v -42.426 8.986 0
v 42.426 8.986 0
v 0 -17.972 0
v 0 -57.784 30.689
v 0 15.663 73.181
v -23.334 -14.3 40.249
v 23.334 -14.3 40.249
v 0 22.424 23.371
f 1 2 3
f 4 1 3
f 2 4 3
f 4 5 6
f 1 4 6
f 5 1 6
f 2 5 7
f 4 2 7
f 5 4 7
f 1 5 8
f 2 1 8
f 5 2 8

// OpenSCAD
// OpenSCAD model of the 11/20 stellated tetrahedron, a "Nopert":
// a convex polyhedron that does NOT have the Rupert property, i.e. it does
// not fit through a hole in a copy of itself.
//
// The polyhedron was suggested by Tony Zeng as a candidate for the simplest
// possible Nopert in
//   Tony Zeng, "A stellated tetrahedron that is probably not Rupert",
//   arXiv:2604.26531 (April 2026).
//
// That it is indeed not Rupert was then formally proved in Lean 4 / Mathlib
// by David Renshaw (dwrensha):
//   https://github.com/dwrensha/StellatedTetrahedron
// The main formal assertion there is `¬ IsRupert exactVerts`, with the
// vertices defined in Noperts/Stellated/Vertices.lean (scaled by 1/2 so that
// they lie in the unit ball). That project grew out of the Noperthedron
// formalization https://github.com/jcreedcmu/Noperthedron, see also the
// Noperthedron model in ../noperthedron.
//
// Vertices (unscaled, as in Zeng's paper):
//   p_i = (1,1,1), (1,-1,-1), (-1,1,-1), (-1,-1,1)   (a regular tetrahedron)
//   q_i = -a * p_i                                   with a = 11/20
// Each q_i sits above the face of the tetrahedron opposite p_i, so the convex
// hull is the tetrahedron with a low pyramid erected on each face:
// 8 vertices, 18 edges, 12 triangular faces.
//
// For comparison: with a = 3/5 one gets the triakis tetrahedron, which has
// long been known to be Rupert (it fits through itself).

//=====================================================================
//          PARAMETERS
//=====================================================================
// Stellation parameter a. 11/20 is the Nopert; 3/5 gives the (Rupert)
// triakis tetrahedron.
a = 11/20;

// Scale factor in mm per unit. The tetrahedron edge is 2*sqrt(2) units, so
// scale_factor = 30 gives an edge of about 85 mm and a circumradius
// (distance from center to a p_i) of about 52 mm.
scale_factor = 30;

// Lay the solid on one of its faces for printing (all 12 faces are equivalent
// by symmetry). The rotation is built from the exact face normal and an edge
// direction, not from rounded angles, so the three base vertices end up on
// z = 0 to floating-point precision. Set to false for the paper's coordinates.
lay_flat = true;

//=====================================================================
//          MODEL DEFINITION
//=====================================================================
p = [[1, 1, 1], [1, -1, -1], [-1, 1, -1], [-1, -1, 1]];
q = [for (v = p) -a * v];

verts = concat(p, q) * scale_factor;   // indices 0..3 = p_i, 4..7 = q_i

// For every i, the face of the tetrahedron opposite p_i is spanned by the
// other three p_j; it gets replaced by three triangles meeting in q_i.
// The vertex order below gives outward-facing (clockwise from outside)
// triangles as OpenSCAD expects.
others = [[1, 2, 3], [0, 3, 2], [0, 1, 3], [0, 2, 1]];
faces = [
    for (i = [0 : 3])
        for (k = [0 : 2])
            [4 + i, others[i][k], others[i][(k + 1) % 3]]
];

// --- lay-flat rotation ---------------------------------------------------
// Base face: the triangle (q_0, p_1, p_2), i.e. faces[0]. Its outward normal
// is proportional to -(1-a, 1-a, 2a); the edge p_1 -> p_2 is along (-1, 1, 0).
// We build an orthonormal frame (e1, e2, e3) with e3 = -outward normal, so
// the face normal maps to -z (face down), and e2 = e3 x e1 makes it a proper
// rotation (determinant +1, face orientation preserved).
function unit(v) = v / norm(v);
e3 = unit([1 - a, 1 - a, 2 * a]);
e1 = unit([1, -1, 0]);
e2 = cross(e3, e1);
function rot(v) = [e1 * v, e2 * v, e3 * v];

base = [4, 1, 2];
// Rotate, then shift so the base face lies on z = 0 and its centroid is at
// the origin (the shift is the rotated centroid of the base triangle; all
// three base vertices share the same z by construction).
centroid = (rot(verts[base[0]]) + rot(verts[base[1]]) + rot(verts[base[2]])) / 3;
// The subtraction leaves the base vertices at |z| ~ 1e-15 (floating-point
// noise); snap that to an exact 0 so the STL has a perfectly flat bottom.
verts_flat = [for (v = verts) let(w = rot(v) - centroid)
    [w.x, w.y, abs(w.z) < 1e-9 ? 0 : w.z]];

polyhedron(points = lay_flat ? verts_flat : verts, faces = faces, convexity = 2);
